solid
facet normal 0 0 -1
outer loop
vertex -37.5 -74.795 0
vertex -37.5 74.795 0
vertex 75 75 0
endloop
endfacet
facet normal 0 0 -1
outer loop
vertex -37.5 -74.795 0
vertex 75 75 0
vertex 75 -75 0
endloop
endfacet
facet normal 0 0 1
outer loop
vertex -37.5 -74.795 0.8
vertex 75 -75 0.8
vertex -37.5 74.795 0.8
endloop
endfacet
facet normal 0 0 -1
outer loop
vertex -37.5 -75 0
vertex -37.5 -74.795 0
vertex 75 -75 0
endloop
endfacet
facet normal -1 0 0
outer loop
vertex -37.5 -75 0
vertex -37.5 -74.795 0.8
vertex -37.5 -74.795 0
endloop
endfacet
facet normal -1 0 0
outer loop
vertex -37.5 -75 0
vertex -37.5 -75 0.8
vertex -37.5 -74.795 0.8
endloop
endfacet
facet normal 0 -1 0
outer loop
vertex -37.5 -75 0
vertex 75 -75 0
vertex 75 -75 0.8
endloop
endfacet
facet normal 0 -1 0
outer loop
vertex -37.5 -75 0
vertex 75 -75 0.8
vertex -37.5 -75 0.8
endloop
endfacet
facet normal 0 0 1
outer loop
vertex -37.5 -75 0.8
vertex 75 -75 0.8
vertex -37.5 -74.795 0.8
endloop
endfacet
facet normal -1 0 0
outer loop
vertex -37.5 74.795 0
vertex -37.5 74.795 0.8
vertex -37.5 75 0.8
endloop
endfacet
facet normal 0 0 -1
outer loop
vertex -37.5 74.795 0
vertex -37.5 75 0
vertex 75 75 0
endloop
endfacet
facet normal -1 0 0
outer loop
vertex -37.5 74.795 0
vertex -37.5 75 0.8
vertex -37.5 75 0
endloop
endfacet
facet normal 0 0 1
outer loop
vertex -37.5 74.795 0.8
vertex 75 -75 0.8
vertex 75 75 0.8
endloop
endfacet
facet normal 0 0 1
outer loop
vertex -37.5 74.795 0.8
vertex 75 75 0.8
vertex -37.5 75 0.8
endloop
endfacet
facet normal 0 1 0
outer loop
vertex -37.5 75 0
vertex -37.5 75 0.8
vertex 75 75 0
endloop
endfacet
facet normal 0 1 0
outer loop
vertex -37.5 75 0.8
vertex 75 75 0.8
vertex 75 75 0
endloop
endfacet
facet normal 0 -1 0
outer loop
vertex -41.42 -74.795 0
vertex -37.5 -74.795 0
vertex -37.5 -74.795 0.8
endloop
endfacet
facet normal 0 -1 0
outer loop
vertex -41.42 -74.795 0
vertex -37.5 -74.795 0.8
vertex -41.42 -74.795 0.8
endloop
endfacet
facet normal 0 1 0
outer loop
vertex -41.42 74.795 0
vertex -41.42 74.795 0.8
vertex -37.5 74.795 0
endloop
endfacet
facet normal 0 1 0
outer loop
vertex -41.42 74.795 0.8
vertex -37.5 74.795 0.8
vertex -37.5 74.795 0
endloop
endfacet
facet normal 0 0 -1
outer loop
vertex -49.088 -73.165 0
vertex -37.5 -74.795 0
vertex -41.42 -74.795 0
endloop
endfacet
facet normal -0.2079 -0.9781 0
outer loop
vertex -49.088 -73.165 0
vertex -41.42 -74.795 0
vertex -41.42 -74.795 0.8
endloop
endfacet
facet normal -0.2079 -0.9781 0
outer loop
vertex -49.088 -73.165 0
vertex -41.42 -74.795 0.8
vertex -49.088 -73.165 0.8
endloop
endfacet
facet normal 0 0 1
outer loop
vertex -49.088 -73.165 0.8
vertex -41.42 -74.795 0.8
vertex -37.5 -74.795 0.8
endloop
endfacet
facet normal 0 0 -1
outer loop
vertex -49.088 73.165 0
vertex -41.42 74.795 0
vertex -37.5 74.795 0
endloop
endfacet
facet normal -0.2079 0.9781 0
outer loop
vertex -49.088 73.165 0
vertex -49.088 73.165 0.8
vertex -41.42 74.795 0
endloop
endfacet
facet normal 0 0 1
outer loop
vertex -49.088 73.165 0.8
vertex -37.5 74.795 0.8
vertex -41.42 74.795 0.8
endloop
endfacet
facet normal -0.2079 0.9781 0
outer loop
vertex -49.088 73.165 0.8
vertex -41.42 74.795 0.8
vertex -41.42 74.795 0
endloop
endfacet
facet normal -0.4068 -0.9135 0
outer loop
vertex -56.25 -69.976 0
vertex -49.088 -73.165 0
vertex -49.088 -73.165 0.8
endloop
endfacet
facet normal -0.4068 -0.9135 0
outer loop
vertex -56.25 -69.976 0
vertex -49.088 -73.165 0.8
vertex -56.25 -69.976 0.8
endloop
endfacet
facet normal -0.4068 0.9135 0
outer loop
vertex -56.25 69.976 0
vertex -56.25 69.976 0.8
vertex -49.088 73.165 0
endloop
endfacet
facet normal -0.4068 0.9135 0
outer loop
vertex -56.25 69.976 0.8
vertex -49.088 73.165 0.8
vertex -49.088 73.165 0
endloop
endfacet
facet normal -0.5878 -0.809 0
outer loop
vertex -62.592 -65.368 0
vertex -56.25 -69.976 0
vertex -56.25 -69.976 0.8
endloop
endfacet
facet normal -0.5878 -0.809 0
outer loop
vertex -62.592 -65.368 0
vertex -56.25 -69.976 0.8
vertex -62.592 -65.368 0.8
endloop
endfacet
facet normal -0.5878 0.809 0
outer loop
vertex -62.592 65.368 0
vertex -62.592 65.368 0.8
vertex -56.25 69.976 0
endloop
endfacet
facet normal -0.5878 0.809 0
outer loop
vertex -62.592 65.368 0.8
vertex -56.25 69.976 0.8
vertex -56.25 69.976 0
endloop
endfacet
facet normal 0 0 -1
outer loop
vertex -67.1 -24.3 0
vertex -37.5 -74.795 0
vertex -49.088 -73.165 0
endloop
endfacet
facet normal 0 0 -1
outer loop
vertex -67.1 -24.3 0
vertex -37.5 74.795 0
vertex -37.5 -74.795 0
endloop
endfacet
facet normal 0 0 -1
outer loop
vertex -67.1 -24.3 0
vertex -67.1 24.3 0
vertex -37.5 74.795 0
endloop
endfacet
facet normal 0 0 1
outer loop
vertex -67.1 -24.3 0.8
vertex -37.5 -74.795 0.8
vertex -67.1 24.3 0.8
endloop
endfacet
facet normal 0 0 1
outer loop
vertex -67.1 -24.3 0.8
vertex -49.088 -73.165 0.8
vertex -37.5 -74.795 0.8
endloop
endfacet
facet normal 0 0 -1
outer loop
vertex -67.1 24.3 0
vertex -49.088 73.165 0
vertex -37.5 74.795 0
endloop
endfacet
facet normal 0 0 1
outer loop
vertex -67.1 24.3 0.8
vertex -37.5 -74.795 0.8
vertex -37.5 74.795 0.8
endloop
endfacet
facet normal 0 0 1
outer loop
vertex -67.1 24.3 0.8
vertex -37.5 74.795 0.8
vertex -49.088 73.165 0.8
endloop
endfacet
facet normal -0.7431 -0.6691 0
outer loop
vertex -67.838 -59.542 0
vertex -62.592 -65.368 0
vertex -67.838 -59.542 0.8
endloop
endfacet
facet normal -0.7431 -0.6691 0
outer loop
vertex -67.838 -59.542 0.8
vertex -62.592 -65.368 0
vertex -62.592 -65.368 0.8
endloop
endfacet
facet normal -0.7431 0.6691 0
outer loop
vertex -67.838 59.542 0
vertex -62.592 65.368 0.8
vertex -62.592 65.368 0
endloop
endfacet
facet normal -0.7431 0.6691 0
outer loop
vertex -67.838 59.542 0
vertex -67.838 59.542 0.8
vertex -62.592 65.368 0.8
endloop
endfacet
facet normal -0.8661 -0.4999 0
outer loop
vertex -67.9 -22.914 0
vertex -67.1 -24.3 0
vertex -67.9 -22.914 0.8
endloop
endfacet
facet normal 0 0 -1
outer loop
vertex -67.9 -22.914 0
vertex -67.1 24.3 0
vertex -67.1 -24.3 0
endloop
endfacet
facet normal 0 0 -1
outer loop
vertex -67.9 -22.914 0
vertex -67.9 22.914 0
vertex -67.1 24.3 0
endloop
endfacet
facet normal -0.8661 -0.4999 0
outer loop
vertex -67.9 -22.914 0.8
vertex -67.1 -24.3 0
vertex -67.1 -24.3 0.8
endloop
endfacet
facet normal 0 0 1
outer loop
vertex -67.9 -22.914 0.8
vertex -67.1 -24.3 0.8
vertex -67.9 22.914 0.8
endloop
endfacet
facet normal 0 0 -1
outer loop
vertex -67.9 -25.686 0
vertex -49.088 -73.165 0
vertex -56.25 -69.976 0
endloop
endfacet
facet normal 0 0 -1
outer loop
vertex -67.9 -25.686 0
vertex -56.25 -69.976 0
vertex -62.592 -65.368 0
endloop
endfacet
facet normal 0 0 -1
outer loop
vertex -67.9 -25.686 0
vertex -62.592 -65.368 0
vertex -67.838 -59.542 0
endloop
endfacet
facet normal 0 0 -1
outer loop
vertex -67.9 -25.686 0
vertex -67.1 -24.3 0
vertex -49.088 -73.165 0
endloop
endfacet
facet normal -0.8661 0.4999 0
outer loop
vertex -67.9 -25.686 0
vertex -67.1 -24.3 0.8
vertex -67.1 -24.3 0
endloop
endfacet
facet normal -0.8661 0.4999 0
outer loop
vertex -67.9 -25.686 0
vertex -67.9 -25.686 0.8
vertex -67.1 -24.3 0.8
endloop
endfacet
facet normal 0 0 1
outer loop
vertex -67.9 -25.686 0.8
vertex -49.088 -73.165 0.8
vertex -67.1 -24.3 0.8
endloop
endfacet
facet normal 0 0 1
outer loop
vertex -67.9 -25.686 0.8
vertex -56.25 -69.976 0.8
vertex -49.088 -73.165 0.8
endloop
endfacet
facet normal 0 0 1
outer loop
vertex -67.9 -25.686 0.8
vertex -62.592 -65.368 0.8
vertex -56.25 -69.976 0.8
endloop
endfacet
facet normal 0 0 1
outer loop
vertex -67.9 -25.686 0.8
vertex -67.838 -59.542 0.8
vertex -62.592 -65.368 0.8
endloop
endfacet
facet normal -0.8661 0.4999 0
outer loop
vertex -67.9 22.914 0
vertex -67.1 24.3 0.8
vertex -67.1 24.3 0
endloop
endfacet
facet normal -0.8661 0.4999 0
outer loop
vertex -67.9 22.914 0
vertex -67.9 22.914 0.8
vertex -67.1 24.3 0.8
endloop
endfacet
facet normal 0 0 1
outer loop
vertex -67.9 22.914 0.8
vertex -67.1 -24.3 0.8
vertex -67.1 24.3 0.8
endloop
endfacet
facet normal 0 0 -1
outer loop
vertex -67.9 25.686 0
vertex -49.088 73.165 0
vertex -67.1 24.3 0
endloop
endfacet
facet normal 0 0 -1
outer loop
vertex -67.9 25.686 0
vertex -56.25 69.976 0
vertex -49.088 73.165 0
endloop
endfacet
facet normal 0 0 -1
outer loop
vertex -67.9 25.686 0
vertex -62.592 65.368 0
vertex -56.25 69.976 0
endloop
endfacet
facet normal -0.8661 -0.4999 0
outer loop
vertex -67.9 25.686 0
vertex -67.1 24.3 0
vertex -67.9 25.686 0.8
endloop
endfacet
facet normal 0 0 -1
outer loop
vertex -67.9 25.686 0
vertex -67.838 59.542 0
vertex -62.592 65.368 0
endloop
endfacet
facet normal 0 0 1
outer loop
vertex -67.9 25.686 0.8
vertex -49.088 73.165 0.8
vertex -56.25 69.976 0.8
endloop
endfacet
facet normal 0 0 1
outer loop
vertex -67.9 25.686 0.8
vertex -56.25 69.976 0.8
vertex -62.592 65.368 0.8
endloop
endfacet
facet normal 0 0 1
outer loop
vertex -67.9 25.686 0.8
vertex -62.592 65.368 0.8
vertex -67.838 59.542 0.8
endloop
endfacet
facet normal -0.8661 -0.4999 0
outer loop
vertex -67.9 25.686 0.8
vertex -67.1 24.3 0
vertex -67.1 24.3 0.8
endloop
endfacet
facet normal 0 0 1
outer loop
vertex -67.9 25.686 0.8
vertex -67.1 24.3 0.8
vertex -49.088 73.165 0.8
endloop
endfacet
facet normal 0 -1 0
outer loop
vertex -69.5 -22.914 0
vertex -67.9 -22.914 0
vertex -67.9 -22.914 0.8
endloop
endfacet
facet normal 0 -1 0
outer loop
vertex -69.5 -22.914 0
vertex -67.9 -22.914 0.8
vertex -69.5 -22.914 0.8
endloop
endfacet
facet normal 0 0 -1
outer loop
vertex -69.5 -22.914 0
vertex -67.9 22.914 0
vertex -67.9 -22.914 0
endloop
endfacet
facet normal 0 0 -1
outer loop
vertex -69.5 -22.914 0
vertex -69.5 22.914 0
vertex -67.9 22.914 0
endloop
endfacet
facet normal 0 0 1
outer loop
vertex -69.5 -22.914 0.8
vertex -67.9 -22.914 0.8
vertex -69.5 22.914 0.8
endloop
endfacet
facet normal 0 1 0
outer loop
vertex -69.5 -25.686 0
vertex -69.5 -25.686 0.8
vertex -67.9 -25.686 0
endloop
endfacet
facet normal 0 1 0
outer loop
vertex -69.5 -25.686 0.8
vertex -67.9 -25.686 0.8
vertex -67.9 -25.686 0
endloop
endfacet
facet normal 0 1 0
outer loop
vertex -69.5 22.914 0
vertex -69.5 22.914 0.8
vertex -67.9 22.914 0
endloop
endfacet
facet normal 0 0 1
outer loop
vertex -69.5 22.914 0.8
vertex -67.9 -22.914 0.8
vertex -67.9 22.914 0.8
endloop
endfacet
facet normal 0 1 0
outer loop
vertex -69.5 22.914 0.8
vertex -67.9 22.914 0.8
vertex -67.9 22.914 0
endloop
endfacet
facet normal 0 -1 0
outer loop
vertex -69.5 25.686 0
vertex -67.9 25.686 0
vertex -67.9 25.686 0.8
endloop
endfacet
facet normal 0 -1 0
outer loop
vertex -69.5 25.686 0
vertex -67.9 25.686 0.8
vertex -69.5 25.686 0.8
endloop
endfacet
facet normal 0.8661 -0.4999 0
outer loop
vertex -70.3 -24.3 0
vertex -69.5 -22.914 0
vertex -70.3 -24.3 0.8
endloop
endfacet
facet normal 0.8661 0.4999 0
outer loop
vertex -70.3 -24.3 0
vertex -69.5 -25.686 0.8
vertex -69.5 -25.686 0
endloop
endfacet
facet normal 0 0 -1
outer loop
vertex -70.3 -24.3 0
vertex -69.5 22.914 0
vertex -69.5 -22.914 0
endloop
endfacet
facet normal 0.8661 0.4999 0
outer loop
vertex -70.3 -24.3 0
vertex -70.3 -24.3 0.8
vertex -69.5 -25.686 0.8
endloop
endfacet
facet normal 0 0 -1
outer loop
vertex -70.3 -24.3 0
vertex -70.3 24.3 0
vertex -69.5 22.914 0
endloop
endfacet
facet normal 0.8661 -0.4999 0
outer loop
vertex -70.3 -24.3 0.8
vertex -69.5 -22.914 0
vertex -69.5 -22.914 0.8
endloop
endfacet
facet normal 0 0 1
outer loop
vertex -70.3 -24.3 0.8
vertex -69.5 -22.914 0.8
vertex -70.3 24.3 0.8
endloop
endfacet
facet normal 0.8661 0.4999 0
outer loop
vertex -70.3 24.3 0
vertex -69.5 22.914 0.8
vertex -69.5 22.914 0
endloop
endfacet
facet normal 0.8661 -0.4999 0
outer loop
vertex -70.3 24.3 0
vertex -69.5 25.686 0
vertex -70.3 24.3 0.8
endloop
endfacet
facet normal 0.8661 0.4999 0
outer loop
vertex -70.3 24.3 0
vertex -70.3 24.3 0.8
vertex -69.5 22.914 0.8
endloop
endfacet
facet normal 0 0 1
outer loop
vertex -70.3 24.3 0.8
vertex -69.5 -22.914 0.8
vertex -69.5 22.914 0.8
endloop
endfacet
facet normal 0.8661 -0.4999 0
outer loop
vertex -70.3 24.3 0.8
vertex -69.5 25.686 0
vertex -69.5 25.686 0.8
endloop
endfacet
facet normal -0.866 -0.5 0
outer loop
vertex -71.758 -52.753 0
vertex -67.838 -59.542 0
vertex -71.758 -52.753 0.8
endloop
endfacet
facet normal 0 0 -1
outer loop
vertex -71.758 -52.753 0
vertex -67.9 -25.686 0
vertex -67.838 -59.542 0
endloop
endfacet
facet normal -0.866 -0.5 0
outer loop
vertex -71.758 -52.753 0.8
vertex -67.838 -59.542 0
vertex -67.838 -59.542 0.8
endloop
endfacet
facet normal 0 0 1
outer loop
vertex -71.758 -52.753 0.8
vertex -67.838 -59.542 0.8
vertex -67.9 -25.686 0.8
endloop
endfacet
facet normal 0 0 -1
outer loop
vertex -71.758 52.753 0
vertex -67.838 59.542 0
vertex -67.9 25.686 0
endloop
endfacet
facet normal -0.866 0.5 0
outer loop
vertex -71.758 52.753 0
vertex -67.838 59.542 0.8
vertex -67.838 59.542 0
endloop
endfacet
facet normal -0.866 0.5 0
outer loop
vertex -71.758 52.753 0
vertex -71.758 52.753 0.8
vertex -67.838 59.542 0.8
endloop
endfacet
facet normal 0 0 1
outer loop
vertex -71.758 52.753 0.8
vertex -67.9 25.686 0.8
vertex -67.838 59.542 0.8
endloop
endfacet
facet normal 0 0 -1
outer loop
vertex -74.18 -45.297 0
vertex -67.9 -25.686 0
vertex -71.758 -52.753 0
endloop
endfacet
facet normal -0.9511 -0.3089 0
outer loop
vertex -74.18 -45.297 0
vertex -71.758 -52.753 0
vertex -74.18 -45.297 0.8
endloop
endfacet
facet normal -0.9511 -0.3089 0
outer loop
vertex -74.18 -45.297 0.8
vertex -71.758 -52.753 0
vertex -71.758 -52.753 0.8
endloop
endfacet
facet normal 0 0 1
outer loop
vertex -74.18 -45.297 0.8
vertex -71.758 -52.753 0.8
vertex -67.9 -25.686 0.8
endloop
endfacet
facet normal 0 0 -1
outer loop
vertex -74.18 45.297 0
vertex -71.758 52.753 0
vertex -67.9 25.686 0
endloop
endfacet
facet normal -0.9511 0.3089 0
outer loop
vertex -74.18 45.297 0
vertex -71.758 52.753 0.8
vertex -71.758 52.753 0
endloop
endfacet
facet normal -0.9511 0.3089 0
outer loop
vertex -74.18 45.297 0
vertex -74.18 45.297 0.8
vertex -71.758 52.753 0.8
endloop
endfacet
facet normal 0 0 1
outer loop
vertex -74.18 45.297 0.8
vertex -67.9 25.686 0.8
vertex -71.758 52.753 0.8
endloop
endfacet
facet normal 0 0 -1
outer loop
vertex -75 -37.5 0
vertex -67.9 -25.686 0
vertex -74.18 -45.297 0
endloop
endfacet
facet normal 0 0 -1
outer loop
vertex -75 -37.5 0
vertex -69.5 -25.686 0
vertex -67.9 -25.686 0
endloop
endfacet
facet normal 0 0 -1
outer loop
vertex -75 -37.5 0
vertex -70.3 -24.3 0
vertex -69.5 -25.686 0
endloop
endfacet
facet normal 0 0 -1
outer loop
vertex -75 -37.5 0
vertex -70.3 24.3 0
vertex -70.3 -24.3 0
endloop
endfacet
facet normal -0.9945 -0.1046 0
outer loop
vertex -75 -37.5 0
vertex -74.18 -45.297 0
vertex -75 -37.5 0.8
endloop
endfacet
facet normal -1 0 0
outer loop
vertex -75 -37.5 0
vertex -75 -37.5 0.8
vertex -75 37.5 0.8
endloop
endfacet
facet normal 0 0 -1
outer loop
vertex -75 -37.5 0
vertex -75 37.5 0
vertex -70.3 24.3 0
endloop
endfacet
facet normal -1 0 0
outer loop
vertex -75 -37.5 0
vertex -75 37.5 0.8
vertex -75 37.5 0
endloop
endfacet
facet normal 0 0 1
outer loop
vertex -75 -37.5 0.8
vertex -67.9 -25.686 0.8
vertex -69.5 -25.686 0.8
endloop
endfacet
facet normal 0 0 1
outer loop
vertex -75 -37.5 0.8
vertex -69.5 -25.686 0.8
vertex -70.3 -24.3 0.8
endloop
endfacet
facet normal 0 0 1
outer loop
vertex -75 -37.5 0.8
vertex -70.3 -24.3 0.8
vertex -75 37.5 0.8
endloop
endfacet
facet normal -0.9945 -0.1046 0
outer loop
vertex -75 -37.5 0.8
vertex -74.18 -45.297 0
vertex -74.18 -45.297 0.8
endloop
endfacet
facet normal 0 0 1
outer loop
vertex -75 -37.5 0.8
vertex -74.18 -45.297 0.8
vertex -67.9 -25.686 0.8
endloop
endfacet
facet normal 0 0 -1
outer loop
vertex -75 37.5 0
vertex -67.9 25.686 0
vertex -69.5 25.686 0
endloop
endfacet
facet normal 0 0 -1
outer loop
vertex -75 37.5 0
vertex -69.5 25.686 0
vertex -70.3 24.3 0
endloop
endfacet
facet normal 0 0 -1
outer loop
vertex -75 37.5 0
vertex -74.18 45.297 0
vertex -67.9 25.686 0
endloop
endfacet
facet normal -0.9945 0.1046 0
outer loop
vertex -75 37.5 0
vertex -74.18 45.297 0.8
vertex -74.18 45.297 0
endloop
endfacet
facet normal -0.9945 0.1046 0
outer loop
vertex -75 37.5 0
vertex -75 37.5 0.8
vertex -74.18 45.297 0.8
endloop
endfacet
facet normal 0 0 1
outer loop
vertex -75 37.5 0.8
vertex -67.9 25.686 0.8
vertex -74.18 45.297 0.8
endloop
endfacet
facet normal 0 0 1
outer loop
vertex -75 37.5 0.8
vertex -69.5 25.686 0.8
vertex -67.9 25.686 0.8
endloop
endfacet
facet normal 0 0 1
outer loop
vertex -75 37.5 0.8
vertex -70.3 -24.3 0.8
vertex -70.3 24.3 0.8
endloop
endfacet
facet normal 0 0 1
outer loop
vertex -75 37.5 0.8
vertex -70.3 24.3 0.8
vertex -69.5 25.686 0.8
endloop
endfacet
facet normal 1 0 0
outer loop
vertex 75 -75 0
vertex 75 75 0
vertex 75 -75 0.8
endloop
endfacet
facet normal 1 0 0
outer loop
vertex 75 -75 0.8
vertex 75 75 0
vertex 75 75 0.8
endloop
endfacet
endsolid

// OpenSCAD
// file: lib/copyFunctions.scad
// copyFunctions.scad - library for copy versions of mirror/rotate/translate
// May 2019

// general use: just like normal version of given function

module rotate_copy(v=[1,0,0])
{
    children();
    rotate(v) children();
}

module mirror_copy(v=[1,0,0])
{
    children();
    mirror(v) children();
}

module translate_copy(v=[1,0,0])
{
    children();
    translate(v) children();
}
// file: ../configuration.scad
//$fn=40; // model faces resolution.

//COMMON PARAMETERS
global_clearance = 0.5; // additional space where needed due to printer precision
layer_thickness = 0.3; // layer which is going to be removed after printing
//M3 x 12 Bolt
M3_nut_diameter = 6.6;
M3_nut_height = 2.7;
M3_bolt_diameter = 3.2;
M3_bolt_head_height = 3;
M3_bolt_length = 12;
//M5 Bolt
M5_bolt_diameter = 5.5;
M5_nut_height = 4.5;
M5_nut_diameter = 9.4;
//M6 Bolt
M6_bolt_diameter = 6.5;
M6_nut_height = 4.9;
M6_nut_diameter = 11.8;


//----------------------------------------------------------------
//----------------------------------------------------------------
//WINDGAUGE02A_S02 - Parametry pro hlavni valec anemometru
S01_hloubka_zavitu=4;
S01_vyska=110; //80
S01_prumer_vnitrni=50;
S01_sila_materialu=1.2;
S01_vyska_horni_zavit=10;
S01_vyska_spodniho_zavitu=10;
S01_sila_drzaku_RJ11=3; //vyška drážky
S01_hrana_A_RJ11=12.3;
S01_hrana_B_RJ11=19;
S01_tolerance_zavit=1.5;

//Rozměry ložiska se závity
//LO_spodni_prumer=22;
LO_spodni_prumer=17.2; //bez krytu
LO_vyska_bez_krytu=15;
LO_doraz_prumer=44.3;
LO_horni_prumer=7.7;
LO_vyska_spodni_doraz=5;
LO_vyska_horni_doraz=9;
LO_vyska_dorazu=0;





//Obecné parametry
prumer_osicky=5.1;



//Parametry loziska
lozisko_prumer_vnitrni=4.9;
lozisko_prumer_vnejsi=16.1;
lozisko_vyska=5;
lozisko_prekryv=1.5;

//Parametry magnetu
magnet_prumer=6.3;
magnet_vyska=5;
magnet_zapusteni=2;
magnet_tolerance_prumeru=0.2;

//Parametry sroubu
prumer_sroubu=3.4;
prumer_hlavy_sroubu=8.2;
vyska_hlavy_sroubu=4.3;
vyska_matky=3;
sirka_matky=6.7;

sirka_matky_tol=0.175;
prumer_orechu=10;

//WINDGAUGE02A_R01 //pro lopatku
L01_hrana_drzaku_a=10;
L01_hrana_drzaku_b=3;
L01_delka_uchytu=19;
L01_prumer_lopatky=40;
L01_sila_materialu_lopatky=0.9;

//WINDGAUGE02A_D02 Anemometer holder
//   | |   Top ring with Screw-thread
//  /   \  Body
// |_____| Base
D02_magnet_base_height = 4.5 + 1.5*global_clearance; // HS-13 M5 magnet height without bolt
D02_magnet_diameter = 16.1 + global_clearance; // HS-13 M5 magnet diameter
D02_flat_magnet_diameter = 18.1 + global_clearance; // HS-13 M5 magnet diameter
D02_wall_thickness = 5; // body wall thickness
D02_connector_spacing = 40; // main body cut-through for connectors
D02_base_diameter = 140; // diameter of holder base
D02_base_height = max(M6_nut_height + 1.5,
                      D02_magnet_base_height + M5_nut_height/2 + 1.5); // height of holder base
D02_body_height = 60 - D02_base_height; // height of body between base and top ring
D02_screw_diameter = S01_prumer_vnitrni - S01_tolerance_zavit; // scew-thread diameter based on stand S01
D02_thread_height = S01_vyska_spodniho_zavitu; // screw-thread height based on stand S01
D02_top_ring_inner_diameter = D02_screw_diameter - 6; // inner diameter of top ring
D02_top_ring_outer_diameter = D02_screw_diameter + 4; // outer diameter of top ring
D02_top_ring_height = D02_thread_height + 5; // height of top ring
D02_total_height = D02_base_height + D02_body_height + D02_top_ring_height; // total height of anemometer holder
// Following parameters are obsolete, maintained only for compatibility.
D01_material_pod_zavitem = D02_top_ring_height - D02_thread_height;
D01_material_za_zavitem = D02_screw_diameter - D02_top_ring_inner_diameter;
D01_material_pred_zavitem = D02_top_ring_outer_diameter - D02_screw_diameter;
D01_polomer_zakladny = D02_base_diameter/2;
D01_sila_setny_spodniho_drzaku=D02_wall_thickness;
D01_vyska_spodni_casti_drzaku = D02_body_height + D02_base_height;
D01_sirka_otvoru_pro_konektor = D02_connector_spacing;
D01_ucyhtna_matice_material_nad = D02_base_height - M6_nut_height;
D01_uchytna_matice_vyska = M6_nut_height;
D01_uchytna_matice_sirka = M6_nut_diameter;
D01_uchytny_sroub_prumer = M6_bolt_diameter;

// Following parameters are actually used in D01 model.
//WINDGAUGE02A_D02 //uchyt na sloup
D02_sila_materialu=6;
D02_vyska_uchytky=40;
D02_prumer_obruby=27; // 3/4 trubka
D02_delka_celeho_uchytu=60;
D02_dotahova_vzdalenost=1.5;
D02_prumer_uchytneho_sroubu=4.2;
D02_sirka_matky=9.1; //pro M4
D02_vyska_matky=3;


//WINDGAUGE02A_R01 //rotor s prekritim statoru
R01_vyska_prekryti_statoru=10;
R01_sila_materialu_pro_prekriti=1.3;
R01_mezera_mezi_statorem_rotorem=3;

//WINDGAUGE02A_R03 //drzak magnetu
R05_sirka_matky=10;



R03_prumer_zavitu=40;
R04_zavit_vyska=5;
R02_zavit_vyska=10;
R01_zavit_vyska=5;
R03_mezera_mezi_statorem_rotorem=3;

R02_delka_kridla=45;
R02_vzdalenost_der=25;

R02_delka_vyrovnnavaci_tyce=35;
R02_hrana_drzaku=14;
R02_sila_materialu_pod_tyci=5;
R02_sila_materialu_kridla=1.2;
R02_sila_materialu_kridla_tolerance=0.3;

R05_vyska_kridla=100;
R05_delka_kridla=100;


//S04
I2CDIFF01A_sirka_kon=16.5; //sirka konektoru
I2CDIFF01A_vyska_kon=13.5; //vyska konektoru
I2CDIFF01A_sirka_mod_otvory=4; //kolik modul zabira der
I2CDIFF01A_vyska_PCB=2; //vyska mezi albase a konektorem
S04_sila_materialu=2;

//S04_USBI2C01A
USBI2C01A_sirka_kon=12; //sirka konektoru
USBI2C01A_vyska_kon=11; //vyska konektoru
USBI2C01A_sirka_mod_otvory=3; //kolik modul zabira der
USBI2C01A_vyska_PCB=2; //vyska mezi albase a konektorem


//WINDGAUGE03A_R03 // Venturi tube
R03_wide_D = 36; // Venturi wide tube inner diameter
R03_narrow_D = R03_wide_D/1.4; // Venturi narrow tube inner diameter
R03_global_clearance = global_clearance; // additional space where needed due to printer precision
R03_PCB_top_rim = 5.5; // vertical distance from top of tube to top of PCB
R03_PCB_height = 41; // height of PCB casing - if changed check casing
R03_PCB_width = 14; // width of PCB casing - if changed check casing
R03_PCB_depth = 3.7; // depth of PCB casing - if changed check casing
R03_PCB_connector_overlay = 2.5; // additional depth of PCB casing on connectors side - if changed check casing
R03_PCB_elevation = 2; // additional elevation of PCB for waterproofing
R03_air_tube_diameter = 2; // air tubes diameter
R03_sensor_housing_offset = 15;  // distance from venturi tube height to sensor housing drop
R03_sensor_offset = 2.2;  // SDP33 distance from PCB border to sensor
R03_sensor_pitch = 4.3;  // SDP33 distance between sensors
R03_sensor_diameter = 3.5;  // SDP33 sensor diameter
R03_sensor_depth = 2.5;  // SDP33 sensor depth
R03_slip_ring_offset = 0; // slip-ring offset from tube center
R03_venturi_tube_height = 150;  // Venturi tube height (limited by max print size)
R03_wall_thickness = 3; // Venturi tube wall thickness
R03_sealing_ring_thickness = 1.5; // sealing ring size
R03_fin_width = 0.8; // width of vertical stabilizator
R03_fin_length = 150; // length of vertical stabilizator
R03_fin_height = 150; // height of vertical stabilizator
R03_fin_holder_width = M3_bolt_length + M3_nut_height;
R03_fin_holder_height = M3_nut_diameter + 2*R03_wall_thickness;
R03_fin_holder_depth = R03_wide_D/2 + R03_fin_holder_height;
R03_balance_shelf_width = 20; // width of shelf for balance weights
R03_balance_shelf_height = 10; // height of shelf for balance weights
// main file
include <../configuration.scad>
use <./lib/copyFunctions.scad>

draft = true;

module WINDGAUGE01A_R05(draft = true)
{
    mirror_copy([0, 1, 0])
        difference()
        {
            // Fin
            union()
            {
                translate([-R03_fin_length/2, -R03_fin_height/4, 0])
                        cube([R03_fin_length, R03_fin_height/4, R03_fin_width]);
                translate([-R03_fin_length/4, -R03_fin_height/4, 0])
                        cylinder(h = R03_fin_width, d = R03_fin_height/2);
                translate([-R03_fin_length/4, -R03_fin_height/2, 0])
                        cube([3/4 * R03_fin_length, R03_fin_height/4, R03_fin_width]);
            }
                // Bolt hole
                translate([-R03_fin_length/2 + R03_fin_holder_height/2,
                           -R03_fin_holder_depth + R03_fin_holder_height/2,
                           0])
                    cylinder(h = R03_fin_width, d = M3_bolt_diameter);
        }
}

difference()
{
    // If not draft -> move to print position.
    if (!draft)
        translate([0, 0, 0])
            rotate([0, 0, 0])
                WINDGAUGE01A_R05(false);
    else
        WINDGAUGE01A_R05();
    // Cut-out cube not needed in this model
    //if (draft)
    //    translate([0, -R03_wide_D, -2*R03_wide_D])
    //        cube(2*R03_wide_D);
}
